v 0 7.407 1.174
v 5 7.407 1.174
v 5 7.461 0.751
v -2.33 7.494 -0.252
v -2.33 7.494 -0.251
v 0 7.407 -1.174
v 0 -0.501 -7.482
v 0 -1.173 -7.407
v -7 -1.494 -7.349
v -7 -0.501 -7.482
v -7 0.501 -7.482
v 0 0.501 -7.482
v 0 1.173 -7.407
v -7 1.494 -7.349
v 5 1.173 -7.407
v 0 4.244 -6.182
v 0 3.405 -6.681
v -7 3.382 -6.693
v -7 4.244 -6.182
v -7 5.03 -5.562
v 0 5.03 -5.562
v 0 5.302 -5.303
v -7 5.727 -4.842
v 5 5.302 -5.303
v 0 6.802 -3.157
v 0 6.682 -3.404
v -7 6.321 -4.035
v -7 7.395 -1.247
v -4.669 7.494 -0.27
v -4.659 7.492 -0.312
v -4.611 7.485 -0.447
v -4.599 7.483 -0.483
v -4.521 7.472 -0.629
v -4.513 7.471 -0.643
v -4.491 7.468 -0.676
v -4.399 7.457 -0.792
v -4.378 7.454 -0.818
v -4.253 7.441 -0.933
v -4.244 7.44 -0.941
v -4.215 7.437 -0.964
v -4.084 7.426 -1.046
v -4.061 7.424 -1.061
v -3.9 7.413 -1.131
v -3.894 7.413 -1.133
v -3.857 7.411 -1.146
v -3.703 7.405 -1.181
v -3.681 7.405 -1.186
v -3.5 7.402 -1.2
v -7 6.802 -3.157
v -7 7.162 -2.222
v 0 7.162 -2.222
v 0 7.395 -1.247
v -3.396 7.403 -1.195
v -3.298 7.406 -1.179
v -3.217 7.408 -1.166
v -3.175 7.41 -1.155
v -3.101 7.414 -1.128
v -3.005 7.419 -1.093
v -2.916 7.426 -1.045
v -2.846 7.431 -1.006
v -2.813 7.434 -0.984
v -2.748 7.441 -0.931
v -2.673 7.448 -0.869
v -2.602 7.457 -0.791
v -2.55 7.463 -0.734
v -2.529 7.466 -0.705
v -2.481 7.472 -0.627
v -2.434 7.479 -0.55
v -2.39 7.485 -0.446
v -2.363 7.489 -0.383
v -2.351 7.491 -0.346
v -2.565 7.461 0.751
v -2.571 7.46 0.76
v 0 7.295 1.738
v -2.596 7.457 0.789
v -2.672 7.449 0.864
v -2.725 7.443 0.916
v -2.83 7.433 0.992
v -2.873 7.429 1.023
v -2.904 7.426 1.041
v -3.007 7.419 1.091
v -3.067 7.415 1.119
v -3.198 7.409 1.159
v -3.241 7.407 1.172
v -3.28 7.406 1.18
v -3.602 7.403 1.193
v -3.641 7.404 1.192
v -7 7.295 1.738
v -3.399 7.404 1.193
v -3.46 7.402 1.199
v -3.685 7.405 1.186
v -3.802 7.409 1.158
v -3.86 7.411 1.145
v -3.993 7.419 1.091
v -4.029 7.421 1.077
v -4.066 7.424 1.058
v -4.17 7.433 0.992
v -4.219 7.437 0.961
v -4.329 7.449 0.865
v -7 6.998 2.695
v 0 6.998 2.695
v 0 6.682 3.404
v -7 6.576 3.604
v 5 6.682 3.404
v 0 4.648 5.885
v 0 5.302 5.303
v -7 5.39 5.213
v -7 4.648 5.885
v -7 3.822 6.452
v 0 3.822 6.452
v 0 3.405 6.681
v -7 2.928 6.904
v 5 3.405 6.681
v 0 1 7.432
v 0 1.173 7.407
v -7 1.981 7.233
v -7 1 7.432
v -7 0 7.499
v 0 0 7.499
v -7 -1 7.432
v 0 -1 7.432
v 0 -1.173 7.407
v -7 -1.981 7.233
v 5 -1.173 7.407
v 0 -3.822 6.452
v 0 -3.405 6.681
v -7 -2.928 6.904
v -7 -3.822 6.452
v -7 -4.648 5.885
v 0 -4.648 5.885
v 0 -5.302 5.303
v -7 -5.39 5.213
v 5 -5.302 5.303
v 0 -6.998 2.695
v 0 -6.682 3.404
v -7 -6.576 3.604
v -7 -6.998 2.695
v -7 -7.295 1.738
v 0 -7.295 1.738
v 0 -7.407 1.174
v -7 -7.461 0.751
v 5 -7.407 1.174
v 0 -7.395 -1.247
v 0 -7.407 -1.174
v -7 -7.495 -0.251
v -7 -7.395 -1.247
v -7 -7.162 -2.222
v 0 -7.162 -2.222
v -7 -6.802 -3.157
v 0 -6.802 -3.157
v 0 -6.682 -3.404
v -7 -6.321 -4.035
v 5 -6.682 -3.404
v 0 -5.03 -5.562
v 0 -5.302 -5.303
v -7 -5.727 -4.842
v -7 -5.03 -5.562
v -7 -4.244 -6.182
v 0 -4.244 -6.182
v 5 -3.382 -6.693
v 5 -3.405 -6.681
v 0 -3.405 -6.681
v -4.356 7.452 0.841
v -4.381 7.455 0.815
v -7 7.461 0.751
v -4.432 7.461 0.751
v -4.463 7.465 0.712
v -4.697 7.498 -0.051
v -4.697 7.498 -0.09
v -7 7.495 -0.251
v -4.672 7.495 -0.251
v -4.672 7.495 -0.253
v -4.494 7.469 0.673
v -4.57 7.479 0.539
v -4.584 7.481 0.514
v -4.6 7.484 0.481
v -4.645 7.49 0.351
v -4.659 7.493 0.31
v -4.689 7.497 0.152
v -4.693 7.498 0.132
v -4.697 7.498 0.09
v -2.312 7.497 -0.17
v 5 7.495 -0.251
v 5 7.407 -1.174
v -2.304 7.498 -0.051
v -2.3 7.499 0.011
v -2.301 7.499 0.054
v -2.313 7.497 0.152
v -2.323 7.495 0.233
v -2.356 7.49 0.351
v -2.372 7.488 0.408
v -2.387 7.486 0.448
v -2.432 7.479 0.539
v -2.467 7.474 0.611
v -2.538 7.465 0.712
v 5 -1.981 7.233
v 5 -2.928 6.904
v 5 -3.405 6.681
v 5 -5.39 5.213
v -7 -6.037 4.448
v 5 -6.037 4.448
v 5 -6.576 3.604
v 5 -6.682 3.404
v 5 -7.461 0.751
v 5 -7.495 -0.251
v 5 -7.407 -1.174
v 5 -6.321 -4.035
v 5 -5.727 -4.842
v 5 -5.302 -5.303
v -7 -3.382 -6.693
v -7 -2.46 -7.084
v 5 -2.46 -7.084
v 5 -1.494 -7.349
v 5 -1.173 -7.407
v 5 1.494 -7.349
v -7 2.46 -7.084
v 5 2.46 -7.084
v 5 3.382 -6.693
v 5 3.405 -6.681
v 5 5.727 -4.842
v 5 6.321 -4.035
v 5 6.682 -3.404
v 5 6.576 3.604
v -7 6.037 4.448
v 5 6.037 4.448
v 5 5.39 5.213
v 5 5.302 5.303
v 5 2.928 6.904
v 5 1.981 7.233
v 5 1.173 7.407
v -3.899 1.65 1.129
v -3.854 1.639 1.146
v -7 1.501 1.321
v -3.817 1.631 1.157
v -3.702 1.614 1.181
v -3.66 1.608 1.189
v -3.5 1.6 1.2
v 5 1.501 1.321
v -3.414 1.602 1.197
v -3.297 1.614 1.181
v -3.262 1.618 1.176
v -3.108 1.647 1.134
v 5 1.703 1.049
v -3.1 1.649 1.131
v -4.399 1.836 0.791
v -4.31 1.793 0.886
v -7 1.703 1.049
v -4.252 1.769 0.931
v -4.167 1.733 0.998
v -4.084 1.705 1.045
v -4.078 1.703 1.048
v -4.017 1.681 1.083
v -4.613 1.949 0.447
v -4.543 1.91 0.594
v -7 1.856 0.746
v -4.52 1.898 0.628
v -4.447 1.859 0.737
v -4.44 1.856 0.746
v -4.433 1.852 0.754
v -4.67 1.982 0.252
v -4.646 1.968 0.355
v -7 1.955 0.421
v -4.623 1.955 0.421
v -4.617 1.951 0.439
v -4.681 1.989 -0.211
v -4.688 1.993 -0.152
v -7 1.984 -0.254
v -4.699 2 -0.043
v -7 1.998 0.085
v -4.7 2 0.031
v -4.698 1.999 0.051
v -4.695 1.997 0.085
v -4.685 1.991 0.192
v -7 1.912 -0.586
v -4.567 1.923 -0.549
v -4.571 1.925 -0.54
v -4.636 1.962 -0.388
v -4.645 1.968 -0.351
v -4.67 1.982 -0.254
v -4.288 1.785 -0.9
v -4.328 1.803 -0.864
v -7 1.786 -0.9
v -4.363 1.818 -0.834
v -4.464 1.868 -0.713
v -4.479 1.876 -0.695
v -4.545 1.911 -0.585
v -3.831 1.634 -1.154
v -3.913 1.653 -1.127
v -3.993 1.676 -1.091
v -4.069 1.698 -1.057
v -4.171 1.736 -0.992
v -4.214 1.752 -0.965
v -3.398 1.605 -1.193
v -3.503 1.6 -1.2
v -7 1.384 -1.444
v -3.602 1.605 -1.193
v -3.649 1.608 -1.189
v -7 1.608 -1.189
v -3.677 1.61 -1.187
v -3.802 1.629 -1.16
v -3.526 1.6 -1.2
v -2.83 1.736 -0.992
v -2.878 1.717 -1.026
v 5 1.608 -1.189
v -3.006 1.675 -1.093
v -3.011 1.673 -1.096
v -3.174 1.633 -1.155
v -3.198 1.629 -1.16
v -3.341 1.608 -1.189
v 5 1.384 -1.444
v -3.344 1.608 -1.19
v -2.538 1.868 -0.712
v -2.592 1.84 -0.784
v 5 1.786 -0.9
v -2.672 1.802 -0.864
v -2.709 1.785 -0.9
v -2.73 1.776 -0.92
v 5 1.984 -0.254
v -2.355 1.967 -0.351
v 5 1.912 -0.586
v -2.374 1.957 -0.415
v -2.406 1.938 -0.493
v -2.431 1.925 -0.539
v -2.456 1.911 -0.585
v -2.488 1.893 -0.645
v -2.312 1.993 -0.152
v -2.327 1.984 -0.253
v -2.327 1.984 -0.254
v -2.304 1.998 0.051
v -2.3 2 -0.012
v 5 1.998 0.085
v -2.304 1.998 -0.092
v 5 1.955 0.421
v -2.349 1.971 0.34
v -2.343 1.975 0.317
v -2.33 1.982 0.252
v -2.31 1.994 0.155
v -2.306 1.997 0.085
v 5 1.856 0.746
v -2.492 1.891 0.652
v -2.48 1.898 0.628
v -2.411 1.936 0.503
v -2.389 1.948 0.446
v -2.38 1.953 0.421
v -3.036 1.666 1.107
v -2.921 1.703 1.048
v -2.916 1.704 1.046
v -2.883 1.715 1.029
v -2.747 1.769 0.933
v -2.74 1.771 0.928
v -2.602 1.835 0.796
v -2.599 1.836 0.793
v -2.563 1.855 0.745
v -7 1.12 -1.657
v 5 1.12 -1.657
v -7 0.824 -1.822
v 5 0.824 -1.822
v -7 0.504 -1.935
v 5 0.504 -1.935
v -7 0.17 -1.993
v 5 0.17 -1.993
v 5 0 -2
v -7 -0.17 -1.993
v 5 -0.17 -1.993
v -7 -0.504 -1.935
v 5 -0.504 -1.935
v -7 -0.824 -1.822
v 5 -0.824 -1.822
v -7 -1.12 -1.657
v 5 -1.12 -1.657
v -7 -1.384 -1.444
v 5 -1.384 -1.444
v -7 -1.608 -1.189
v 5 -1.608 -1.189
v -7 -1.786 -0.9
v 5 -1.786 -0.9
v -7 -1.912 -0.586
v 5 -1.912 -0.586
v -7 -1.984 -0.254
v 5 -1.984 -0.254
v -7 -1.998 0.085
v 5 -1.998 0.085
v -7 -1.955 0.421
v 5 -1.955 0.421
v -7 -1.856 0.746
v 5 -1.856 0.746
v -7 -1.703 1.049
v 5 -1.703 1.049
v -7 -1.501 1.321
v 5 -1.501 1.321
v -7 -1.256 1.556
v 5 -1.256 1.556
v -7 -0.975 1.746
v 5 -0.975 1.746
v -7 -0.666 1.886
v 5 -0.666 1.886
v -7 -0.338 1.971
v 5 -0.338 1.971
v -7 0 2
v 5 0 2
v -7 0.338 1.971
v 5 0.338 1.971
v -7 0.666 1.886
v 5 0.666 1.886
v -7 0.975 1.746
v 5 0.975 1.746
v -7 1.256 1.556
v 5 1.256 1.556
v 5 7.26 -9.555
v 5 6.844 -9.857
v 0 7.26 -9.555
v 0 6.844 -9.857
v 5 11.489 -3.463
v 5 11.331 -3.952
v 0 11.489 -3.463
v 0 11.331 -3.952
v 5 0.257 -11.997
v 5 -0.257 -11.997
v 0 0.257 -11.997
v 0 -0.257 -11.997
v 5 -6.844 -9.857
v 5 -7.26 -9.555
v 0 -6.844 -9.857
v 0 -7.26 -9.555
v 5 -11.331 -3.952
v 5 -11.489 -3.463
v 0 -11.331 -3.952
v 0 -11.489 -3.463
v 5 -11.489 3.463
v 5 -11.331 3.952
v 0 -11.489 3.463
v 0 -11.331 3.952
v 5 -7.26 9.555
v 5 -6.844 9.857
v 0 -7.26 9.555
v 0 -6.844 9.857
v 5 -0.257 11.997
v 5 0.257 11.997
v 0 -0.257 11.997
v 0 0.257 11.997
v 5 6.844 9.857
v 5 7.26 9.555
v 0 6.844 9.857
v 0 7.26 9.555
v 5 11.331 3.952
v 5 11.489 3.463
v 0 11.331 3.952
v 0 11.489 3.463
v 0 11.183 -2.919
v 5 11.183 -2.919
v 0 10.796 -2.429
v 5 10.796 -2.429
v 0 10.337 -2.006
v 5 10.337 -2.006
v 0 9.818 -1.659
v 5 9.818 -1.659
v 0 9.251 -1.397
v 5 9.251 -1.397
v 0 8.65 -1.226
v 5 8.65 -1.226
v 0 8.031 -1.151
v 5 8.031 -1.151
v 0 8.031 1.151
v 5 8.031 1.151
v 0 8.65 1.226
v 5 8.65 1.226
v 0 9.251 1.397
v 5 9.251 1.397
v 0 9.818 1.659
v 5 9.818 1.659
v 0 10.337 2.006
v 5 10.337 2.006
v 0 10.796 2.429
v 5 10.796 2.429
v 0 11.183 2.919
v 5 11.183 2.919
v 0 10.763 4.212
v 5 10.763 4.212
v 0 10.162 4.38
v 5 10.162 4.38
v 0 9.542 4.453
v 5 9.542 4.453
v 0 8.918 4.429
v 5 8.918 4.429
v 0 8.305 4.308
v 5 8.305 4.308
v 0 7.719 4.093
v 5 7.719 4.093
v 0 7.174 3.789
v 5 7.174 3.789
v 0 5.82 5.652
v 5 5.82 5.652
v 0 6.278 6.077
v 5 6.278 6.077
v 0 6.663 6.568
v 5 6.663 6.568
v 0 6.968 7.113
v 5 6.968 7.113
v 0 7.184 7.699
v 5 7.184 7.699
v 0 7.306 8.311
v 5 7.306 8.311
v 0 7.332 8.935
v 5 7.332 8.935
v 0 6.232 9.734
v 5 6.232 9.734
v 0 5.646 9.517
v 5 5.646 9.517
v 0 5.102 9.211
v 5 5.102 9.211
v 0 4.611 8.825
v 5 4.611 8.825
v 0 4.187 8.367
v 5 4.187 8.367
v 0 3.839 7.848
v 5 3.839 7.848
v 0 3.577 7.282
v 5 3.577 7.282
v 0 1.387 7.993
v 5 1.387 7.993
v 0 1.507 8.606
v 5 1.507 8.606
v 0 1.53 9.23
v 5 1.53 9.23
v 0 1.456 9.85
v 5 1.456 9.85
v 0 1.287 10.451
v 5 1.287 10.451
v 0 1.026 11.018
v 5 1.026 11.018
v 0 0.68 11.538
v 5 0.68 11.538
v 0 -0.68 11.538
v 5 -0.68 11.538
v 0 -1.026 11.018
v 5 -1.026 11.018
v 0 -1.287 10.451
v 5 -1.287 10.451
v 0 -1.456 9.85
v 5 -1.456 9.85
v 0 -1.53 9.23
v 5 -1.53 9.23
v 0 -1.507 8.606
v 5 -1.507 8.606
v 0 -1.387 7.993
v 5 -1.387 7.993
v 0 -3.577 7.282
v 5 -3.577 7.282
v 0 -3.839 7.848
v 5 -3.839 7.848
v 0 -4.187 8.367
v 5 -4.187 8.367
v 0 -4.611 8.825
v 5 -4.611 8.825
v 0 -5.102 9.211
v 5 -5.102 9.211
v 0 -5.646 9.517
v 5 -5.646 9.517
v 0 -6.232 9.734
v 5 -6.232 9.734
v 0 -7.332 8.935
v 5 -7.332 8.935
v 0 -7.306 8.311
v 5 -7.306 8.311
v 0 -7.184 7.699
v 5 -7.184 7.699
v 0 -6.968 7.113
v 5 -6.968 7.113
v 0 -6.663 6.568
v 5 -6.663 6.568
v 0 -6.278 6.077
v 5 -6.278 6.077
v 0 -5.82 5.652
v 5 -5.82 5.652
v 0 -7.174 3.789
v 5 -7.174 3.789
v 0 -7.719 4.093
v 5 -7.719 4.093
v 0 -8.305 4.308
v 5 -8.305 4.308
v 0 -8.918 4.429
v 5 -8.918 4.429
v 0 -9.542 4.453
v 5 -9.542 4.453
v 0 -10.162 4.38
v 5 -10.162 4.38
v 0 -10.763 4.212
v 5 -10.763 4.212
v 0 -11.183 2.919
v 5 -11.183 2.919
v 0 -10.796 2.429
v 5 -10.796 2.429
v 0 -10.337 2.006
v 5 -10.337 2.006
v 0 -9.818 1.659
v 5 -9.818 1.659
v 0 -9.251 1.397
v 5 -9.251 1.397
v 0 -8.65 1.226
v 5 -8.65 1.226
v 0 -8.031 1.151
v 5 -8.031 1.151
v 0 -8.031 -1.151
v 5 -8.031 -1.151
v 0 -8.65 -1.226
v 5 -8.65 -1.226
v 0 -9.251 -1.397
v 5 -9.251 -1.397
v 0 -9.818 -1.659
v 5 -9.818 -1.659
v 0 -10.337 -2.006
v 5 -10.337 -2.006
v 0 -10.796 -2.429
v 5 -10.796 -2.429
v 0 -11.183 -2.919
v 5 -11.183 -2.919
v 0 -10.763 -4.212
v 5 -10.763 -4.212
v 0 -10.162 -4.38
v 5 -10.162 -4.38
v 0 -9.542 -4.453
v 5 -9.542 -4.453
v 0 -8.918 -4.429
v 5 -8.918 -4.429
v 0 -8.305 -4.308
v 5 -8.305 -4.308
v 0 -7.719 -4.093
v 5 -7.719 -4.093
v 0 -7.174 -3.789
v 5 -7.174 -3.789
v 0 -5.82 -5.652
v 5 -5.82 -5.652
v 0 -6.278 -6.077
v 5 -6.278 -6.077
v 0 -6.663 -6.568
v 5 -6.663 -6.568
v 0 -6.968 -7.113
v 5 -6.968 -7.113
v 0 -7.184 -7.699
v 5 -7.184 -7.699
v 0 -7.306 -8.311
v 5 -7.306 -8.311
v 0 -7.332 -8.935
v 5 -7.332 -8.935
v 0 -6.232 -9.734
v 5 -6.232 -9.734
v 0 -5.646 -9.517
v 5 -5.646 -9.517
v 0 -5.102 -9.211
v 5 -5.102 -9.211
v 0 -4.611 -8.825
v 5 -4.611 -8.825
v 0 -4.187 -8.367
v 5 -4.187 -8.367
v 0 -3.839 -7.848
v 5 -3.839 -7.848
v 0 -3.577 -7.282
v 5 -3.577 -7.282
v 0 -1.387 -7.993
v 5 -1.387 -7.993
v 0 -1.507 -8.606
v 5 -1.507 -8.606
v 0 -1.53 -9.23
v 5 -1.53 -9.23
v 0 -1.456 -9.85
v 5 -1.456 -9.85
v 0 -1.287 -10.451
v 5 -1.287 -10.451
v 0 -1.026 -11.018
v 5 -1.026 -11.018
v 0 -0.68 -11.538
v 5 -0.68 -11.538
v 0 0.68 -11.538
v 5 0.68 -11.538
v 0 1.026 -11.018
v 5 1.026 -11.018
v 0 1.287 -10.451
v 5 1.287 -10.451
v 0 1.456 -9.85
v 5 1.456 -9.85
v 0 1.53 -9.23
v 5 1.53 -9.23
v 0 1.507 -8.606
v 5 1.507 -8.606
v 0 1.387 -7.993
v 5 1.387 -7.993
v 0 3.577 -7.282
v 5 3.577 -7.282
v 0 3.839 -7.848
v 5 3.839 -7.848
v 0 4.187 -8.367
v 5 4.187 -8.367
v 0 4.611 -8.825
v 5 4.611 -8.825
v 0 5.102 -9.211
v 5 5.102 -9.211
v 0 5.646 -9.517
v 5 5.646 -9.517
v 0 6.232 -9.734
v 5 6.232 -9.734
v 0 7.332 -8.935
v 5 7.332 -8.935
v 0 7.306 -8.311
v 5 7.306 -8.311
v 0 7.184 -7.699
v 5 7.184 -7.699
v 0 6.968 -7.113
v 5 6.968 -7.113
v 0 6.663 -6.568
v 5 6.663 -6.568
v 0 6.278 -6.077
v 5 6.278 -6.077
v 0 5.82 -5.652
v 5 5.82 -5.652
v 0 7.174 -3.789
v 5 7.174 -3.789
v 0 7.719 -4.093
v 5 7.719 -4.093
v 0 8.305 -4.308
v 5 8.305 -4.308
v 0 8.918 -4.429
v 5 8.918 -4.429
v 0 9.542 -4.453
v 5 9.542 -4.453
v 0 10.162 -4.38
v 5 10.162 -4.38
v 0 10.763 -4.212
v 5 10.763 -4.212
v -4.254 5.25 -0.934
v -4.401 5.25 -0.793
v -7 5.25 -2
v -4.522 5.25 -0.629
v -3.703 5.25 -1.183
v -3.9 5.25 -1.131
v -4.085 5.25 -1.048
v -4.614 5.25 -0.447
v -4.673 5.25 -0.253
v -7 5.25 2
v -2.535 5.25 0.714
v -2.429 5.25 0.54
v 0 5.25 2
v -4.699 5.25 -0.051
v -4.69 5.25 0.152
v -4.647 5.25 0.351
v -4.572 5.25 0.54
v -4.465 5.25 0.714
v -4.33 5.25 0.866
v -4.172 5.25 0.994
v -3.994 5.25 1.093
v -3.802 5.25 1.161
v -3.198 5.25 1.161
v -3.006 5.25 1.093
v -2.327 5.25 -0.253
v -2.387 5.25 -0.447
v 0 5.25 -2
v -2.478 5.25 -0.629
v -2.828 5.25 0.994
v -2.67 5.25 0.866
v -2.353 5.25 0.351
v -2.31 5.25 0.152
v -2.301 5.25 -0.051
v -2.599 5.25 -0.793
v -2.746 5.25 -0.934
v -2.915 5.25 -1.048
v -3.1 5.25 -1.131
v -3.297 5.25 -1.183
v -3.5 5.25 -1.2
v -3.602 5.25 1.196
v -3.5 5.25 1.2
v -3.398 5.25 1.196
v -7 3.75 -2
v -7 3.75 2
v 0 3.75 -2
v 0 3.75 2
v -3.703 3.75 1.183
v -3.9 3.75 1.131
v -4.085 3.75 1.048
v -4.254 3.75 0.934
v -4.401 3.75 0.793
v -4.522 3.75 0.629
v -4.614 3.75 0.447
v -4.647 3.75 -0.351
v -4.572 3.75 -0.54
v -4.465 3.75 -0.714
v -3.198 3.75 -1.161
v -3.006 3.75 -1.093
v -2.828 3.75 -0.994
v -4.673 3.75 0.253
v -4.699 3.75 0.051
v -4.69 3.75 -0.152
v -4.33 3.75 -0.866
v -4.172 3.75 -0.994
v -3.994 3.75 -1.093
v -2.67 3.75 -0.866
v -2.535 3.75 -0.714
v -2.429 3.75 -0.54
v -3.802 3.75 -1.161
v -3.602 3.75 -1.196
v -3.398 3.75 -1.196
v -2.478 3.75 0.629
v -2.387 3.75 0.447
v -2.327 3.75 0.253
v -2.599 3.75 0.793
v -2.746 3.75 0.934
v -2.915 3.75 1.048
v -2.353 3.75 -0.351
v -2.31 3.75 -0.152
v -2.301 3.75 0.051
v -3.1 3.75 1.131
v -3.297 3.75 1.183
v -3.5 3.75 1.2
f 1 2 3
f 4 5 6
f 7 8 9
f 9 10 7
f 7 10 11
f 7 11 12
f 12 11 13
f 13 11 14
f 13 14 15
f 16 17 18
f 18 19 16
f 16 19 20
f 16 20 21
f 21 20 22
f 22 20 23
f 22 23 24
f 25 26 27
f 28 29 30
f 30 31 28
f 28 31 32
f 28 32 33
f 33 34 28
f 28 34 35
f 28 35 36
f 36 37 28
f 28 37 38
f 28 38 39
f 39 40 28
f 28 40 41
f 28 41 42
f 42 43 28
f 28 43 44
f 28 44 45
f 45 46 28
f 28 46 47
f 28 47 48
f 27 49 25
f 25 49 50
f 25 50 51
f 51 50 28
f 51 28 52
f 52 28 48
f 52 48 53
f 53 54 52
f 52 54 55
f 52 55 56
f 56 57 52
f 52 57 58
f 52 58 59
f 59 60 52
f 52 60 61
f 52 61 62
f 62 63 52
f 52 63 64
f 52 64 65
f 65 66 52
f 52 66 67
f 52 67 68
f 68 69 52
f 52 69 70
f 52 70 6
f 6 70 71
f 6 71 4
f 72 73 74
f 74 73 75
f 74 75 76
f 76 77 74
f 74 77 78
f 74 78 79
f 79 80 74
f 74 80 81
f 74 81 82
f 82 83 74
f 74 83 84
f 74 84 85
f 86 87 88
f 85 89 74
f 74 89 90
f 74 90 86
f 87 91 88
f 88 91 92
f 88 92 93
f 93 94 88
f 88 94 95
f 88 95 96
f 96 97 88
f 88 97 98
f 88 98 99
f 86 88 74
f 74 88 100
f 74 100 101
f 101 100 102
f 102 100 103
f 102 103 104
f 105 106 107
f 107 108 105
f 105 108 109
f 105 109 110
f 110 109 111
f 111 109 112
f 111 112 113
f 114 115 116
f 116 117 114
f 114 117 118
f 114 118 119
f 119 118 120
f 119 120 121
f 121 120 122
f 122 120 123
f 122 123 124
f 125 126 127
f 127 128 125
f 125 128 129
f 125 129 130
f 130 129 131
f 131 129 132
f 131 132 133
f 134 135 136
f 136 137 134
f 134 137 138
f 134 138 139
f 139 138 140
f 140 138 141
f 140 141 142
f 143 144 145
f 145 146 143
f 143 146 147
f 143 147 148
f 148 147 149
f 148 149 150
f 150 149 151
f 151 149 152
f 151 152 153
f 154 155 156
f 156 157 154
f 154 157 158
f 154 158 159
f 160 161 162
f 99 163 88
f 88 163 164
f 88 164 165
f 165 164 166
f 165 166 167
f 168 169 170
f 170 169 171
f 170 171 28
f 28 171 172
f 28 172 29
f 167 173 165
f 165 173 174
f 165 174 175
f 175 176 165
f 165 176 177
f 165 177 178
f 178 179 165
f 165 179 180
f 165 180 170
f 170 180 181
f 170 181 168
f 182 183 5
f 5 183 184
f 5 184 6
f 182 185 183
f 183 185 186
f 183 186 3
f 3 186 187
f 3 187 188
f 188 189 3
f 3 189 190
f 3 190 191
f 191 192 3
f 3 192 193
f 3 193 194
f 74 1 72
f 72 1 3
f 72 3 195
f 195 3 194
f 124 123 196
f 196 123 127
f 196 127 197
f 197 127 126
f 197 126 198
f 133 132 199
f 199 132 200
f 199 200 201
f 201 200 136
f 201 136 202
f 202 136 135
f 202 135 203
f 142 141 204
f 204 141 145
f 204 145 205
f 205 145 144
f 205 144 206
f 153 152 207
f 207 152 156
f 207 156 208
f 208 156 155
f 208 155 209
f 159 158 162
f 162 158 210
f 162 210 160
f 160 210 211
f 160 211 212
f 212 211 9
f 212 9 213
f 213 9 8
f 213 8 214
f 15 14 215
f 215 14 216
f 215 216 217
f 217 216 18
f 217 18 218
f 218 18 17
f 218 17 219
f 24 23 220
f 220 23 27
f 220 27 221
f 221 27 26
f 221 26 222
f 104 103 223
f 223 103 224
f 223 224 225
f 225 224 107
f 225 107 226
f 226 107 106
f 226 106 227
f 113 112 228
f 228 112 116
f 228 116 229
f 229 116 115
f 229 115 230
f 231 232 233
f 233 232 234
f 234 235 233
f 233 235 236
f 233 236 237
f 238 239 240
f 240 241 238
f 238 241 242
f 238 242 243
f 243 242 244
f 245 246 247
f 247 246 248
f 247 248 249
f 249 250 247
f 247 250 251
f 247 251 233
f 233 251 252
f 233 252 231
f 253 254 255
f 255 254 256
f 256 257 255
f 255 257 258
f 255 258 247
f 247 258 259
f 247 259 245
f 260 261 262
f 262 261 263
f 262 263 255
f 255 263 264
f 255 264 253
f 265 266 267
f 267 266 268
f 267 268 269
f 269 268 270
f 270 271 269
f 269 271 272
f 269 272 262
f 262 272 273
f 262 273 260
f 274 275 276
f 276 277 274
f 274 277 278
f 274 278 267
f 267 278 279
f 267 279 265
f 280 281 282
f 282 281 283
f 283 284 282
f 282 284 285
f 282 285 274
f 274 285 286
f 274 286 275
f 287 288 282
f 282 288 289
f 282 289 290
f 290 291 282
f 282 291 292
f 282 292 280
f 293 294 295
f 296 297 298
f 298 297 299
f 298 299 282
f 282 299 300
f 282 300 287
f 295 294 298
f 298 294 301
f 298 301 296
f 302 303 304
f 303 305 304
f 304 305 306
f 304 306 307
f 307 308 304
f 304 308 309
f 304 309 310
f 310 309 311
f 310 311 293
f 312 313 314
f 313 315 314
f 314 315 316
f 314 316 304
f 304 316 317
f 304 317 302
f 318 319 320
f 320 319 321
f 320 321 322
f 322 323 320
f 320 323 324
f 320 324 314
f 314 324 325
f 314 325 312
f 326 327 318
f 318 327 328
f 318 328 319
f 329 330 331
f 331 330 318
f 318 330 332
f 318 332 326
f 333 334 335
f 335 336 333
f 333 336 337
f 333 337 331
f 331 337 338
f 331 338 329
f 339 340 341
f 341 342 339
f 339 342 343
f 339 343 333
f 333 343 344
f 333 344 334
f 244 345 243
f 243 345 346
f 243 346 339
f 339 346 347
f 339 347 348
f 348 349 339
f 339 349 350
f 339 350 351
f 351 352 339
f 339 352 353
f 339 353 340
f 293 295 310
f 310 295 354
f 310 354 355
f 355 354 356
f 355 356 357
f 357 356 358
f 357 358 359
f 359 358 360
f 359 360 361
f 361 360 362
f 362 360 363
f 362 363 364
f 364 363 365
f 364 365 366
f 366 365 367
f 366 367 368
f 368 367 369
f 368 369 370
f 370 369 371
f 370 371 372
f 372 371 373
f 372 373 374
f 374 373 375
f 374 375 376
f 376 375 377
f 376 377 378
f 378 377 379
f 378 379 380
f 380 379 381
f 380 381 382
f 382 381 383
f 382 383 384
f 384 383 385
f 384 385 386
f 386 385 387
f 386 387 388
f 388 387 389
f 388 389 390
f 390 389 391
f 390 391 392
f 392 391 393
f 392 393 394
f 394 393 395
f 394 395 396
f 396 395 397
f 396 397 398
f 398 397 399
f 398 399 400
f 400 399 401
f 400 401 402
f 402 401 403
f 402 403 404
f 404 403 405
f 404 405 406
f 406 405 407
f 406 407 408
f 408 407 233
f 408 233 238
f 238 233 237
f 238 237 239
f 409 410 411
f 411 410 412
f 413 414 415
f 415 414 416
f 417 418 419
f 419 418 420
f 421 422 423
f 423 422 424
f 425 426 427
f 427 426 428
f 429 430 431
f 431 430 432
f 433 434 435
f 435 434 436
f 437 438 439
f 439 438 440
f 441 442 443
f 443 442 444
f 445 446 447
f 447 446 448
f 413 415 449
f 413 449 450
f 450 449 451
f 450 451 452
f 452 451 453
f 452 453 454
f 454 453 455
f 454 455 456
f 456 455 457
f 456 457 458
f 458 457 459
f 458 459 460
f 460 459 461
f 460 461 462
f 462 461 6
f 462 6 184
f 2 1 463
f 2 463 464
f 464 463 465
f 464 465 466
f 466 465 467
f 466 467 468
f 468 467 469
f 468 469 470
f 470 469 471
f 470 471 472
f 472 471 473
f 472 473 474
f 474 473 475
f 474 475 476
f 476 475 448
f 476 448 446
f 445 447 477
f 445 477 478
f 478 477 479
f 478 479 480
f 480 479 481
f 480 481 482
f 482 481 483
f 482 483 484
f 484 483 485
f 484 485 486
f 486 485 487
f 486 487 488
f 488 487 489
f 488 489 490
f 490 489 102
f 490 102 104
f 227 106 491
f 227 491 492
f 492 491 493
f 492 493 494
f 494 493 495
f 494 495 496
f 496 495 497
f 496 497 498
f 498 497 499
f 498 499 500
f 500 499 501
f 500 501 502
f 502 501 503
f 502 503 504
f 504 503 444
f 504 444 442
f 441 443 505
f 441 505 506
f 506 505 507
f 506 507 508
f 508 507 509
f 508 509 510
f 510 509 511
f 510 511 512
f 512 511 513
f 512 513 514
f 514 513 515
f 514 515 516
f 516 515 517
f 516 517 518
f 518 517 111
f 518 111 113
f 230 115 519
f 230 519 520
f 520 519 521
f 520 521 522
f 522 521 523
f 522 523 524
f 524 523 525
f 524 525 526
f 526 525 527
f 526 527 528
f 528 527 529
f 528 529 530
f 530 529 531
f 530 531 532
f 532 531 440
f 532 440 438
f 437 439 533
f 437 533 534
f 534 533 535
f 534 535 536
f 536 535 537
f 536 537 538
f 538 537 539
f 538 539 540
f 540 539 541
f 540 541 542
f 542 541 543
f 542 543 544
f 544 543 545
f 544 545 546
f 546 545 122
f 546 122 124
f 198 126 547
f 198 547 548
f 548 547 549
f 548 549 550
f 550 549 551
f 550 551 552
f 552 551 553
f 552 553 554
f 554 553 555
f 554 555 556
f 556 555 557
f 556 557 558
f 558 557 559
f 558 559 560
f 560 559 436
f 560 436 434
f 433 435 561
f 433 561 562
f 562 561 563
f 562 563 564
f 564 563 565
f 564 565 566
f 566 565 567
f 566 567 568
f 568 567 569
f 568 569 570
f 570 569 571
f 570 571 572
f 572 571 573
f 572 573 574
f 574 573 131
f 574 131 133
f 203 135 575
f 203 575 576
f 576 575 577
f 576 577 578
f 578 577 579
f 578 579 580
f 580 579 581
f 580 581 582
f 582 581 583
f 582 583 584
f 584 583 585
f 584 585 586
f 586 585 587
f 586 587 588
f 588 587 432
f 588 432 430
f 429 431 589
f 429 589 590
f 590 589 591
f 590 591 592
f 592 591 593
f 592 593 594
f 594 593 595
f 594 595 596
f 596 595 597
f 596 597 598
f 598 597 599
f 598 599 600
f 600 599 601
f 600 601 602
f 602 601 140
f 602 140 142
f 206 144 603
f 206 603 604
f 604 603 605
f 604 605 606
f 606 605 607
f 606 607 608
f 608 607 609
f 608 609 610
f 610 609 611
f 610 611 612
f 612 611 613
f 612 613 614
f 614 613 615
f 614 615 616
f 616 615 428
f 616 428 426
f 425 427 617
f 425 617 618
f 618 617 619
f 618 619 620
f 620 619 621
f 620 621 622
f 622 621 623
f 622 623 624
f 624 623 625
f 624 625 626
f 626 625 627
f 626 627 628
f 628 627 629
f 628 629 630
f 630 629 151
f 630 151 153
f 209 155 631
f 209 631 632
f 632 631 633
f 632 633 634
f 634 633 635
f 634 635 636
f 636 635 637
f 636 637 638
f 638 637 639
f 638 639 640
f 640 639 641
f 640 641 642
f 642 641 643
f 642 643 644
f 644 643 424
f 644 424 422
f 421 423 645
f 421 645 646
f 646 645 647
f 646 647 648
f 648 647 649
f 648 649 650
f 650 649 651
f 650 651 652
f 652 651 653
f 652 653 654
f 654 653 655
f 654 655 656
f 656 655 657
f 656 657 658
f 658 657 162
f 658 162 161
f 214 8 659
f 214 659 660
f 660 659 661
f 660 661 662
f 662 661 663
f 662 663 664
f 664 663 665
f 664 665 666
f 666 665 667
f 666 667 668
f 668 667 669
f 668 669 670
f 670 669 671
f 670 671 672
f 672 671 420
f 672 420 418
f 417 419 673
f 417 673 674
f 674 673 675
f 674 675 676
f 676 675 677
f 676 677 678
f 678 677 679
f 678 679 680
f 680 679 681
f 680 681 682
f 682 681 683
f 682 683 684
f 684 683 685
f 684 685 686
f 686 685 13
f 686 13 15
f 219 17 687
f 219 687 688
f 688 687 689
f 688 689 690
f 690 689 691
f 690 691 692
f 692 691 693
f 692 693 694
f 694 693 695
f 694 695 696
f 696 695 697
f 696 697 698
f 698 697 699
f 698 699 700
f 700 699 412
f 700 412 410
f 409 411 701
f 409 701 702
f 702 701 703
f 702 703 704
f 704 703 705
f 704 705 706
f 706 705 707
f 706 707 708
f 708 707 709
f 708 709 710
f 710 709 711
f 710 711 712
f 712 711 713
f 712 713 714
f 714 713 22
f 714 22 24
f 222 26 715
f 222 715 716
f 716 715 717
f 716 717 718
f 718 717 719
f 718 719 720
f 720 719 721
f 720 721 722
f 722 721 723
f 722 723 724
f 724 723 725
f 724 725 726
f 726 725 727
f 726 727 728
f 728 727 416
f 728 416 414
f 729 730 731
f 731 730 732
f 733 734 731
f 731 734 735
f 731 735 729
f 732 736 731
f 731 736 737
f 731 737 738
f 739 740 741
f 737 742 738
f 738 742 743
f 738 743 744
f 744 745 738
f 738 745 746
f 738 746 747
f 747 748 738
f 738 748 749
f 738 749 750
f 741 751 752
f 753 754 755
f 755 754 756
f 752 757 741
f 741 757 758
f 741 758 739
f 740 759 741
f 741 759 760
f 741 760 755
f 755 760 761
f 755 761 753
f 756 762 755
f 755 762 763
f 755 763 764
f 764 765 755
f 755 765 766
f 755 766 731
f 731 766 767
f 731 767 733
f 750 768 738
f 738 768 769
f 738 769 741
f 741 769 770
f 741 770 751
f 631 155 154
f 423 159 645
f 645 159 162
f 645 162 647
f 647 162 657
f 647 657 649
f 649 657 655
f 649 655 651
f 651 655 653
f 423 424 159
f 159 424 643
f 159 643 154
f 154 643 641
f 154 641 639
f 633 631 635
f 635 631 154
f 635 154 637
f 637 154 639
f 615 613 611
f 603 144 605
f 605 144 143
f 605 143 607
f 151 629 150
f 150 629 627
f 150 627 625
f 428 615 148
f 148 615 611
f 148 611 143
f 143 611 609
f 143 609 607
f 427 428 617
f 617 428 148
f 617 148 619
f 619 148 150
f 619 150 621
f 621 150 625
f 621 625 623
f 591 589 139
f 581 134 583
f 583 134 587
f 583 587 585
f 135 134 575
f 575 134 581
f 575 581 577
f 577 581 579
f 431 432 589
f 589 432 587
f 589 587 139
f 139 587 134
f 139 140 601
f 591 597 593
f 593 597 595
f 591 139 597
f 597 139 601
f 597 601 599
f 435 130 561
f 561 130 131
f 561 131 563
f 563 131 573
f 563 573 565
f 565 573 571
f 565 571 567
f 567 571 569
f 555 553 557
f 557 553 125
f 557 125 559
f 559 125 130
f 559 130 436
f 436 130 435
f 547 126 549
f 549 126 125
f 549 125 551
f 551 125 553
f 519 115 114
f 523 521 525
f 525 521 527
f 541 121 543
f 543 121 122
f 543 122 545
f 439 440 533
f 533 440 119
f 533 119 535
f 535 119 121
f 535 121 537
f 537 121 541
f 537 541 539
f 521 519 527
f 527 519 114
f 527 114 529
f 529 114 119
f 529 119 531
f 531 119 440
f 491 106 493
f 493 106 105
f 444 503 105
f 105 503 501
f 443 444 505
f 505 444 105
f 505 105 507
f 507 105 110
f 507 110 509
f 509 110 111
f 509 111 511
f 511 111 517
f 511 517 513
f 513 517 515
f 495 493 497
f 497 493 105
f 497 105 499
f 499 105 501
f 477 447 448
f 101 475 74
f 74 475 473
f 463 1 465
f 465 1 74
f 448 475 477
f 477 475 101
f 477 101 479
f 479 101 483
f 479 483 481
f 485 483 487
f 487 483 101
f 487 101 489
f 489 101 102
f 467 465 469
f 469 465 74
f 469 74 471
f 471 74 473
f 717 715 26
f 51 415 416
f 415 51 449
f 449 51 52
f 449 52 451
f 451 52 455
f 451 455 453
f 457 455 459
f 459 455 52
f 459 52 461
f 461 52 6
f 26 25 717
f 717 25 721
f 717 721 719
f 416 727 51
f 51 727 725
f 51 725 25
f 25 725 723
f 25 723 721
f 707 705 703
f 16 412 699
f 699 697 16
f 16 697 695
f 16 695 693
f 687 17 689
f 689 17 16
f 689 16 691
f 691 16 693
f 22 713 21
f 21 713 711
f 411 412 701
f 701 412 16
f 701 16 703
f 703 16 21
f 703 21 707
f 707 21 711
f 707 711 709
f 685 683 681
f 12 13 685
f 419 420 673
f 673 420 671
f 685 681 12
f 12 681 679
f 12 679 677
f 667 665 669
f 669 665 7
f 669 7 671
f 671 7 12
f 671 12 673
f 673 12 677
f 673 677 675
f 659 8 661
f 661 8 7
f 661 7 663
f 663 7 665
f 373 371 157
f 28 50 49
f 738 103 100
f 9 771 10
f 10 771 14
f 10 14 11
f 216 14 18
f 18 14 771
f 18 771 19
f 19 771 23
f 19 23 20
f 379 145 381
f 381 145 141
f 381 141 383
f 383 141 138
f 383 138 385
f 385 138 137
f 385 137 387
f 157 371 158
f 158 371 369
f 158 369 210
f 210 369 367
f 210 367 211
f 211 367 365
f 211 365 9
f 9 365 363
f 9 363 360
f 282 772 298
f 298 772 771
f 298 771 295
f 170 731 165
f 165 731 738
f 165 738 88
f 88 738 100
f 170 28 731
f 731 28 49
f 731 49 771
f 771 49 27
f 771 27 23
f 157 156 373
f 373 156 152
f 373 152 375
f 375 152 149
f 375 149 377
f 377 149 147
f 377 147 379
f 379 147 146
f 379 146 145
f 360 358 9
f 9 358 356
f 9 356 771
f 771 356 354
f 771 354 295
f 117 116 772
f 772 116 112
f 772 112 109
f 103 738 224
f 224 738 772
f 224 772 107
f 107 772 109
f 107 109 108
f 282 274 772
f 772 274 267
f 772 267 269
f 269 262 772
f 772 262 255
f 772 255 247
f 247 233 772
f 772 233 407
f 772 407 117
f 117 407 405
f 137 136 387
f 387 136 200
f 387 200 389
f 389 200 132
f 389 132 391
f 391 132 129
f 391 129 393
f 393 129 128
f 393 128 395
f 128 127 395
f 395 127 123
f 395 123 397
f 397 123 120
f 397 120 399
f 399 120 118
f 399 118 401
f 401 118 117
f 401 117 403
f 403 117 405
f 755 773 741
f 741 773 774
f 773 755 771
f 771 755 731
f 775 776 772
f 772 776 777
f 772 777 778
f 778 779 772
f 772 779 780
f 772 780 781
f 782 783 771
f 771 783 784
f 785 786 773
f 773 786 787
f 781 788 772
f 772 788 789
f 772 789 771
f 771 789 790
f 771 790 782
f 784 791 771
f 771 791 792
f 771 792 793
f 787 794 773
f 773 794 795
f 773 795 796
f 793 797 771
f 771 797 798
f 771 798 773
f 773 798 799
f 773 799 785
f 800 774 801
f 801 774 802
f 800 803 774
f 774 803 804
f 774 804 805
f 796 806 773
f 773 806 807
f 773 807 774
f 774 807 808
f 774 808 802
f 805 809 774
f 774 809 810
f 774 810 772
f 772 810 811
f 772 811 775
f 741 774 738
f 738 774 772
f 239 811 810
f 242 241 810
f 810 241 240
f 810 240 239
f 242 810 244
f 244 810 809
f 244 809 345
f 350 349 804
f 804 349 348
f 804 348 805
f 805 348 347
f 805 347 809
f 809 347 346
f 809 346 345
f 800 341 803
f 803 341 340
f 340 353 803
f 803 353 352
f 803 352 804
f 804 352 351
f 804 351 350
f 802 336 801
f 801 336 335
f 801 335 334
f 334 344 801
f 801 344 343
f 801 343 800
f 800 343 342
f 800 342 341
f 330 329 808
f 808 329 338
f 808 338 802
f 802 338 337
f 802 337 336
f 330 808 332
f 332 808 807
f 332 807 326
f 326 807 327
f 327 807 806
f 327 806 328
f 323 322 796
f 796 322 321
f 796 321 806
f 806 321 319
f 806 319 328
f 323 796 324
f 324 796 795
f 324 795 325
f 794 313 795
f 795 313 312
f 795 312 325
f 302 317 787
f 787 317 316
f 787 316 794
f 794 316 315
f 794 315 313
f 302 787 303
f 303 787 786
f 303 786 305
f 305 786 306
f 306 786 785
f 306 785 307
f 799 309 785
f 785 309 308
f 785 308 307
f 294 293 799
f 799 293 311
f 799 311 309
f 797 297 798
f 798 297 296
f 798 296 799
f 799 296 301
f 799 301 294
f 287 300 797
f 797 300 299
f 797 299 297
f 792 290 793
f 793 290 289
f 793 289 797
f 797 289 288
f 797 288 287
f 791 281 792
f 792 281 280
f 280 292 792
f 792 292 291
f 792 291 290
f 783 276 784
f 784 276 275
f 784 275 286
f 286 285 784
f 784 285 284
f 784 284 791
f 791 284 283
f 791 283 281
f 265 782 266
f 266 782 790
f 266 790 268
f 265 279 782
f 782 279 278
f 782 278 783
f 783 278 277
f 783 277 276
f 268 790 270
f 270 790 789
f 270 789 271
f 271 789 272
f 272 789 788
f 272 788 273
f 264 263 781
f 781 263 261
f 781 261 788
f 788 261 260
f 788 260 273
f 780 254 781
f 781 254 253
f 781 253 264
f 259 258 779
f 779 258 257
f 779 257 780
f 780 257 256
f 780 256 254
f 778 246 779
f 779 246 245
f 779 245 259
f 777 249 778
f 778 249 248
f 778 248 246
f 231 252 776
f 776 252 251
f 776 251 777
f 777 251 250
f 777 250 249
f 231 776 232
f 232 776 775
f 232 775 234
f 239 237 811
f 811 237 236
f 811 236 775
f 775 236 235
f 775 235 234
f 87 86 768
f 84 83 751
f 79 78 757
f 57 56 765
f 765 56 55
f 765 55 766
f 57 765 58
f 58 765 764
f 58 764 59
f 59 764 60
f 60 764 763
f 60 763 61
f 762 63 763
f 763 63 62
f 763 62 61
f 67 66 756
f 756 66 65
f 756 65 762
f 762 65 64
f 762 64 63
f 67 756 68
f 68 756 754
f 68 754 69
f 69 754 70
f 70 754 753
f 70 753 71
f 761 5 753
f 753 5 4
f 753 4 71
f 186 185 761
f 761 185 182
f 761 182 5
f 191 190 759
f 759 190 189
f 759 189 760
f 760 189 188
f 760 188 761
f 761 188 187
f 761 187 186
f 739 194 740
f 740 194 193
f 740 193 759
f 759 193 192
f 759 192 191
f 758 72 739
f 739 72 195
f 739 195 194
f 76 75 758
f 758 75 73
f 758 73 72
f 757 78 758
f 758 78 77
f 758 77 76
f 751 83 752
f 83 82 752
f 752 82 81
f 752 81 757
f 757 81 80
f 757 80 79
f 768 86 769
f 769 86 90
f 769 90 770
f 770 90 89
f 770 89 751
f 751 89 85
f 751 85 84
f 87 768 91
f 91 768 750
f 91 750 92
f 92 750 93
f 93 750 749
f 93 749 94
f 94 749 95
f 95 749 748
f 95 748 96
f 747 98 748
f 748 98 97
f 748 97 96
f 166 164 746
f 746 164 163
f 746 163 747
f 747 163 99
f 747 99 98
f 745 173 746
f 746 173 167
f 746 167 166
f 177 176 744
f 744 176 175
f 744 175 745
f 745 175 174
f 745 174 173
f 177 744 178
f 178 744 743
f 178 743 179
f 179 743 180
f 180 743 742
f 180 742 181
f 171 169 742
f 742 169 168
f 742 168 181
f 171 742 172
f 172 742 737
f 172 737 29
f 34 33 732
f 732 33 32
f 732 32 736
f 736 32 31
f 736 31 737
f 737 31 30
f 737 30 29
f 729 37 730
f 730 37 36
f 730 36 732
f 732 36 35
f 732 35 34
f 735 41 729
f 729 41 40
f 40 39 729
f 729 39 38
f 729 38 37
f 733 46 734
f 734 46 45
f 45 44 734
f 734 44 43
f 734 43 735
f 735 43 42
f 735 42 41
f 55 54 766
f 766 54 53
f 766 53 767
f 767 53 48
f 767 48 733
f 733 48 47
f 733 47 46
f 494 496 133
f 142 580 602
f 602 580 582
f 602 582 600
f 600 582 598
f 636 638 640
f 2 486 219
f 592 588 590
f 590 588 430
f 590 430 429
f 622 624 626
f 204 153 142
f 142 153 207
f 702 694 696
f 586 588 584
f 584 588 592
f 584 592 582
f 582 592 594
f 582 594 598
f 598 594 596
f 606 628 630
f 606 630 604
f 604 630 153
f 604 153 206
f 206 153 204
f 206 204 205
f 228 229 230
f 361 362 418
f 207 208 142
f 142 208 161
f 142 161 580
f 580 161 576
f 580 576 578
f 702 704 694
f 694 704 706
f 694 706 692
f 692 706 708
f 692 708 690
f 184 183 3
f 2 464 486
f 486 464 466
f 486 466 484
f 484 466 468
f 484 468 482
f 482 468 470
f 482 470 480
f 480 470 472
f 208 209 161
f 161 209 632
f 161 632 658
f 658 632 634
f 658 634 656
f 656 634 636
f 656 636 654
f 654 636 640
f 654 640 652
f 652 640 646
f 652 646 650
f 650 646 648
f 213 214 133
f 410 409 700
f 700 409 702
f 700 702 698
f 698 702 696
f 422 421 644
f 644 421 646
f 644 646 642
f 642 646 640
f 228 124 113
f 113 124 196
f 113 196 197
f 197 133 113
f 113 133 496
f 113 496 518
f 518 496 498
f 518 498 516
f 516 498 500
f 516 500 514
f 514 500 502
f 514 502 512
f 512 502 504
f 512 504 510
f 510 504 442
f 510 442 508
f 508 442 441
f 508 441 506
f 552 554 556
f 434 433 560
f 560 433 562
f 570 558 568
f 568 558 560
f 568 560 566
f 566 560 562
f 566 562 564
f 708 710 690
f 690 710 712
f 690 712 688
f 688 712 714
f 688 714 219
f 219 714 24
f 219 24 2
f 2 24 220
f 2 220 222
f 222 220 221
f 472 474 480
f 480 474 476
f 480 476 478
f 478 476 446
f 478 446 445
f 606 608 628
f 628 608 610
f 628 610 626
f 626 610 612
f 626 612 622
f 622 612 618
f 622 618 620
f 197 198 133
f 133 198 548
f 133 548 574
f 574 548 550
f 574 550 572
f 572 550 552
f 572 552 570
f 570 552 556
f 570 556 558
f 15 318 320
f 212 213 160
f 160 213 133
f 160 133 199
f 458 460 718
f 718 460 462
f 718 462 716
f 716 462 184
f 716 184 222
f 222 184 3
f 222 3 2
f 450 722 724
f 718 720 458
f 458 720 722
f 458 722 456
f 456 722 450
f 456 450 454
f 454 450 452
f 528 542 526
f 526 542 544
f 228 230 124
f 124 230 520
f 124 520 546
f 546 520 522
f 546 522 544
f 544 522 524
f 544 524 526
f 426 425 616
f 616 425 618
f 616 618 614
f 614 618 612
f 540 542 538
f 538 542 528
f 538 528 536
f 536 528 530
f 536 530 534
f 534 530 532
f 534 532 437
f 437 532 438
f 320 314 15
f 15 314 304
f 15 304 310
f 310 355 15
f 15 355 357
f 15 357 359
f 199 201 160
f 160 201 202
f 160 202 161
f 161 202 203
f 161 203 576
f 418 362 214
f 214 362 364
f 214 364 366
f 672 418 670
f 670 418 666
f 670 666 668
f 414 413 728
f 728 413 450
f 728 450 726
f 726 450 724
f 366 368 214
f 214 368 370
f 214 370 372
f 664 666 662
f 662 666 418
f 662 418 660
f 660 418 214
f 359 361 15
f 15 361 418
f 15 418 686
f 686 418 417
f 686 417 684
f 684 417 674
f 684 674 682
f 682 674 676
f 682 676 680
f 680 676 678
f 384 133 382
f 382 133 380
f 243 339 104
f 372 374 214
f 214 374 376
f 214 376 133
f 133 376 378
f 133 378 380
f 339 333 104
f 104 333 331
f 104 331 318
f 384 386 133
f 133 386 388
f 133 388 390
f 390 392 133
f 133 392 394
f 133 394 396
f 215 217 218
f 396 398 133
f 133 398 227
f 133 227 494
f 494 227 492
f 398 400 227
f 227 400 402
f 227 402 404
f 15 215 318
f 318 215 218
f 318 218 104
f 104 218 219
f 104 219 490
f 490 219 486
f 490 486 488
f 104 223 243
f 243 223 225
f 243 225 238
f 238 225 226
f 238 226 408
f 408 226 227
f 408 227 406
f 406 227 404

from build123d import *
from build123d.topology import SkipClean

# Parameters (mm, degrees)
BASPROSKE_W                  = 10
BASPROSKE_H                  = 12
TOOTHCUT_DEPTH               = 20.697715604
TEETHCUTS_COUNT              = 10
TEETHCUTS_ANGLE              = 324
HUBNEAONESKE_R               = 7.499
HUBNEARONE_DEPTH             = 10.0000508
BORSKE_R                     = 2
BORE_DEPTH                   = 20.0000508
ESQUISSE1_W                  = 4
ESQUISSE1_H                  = 1.5
ENL_V_MAT_EXTRU_1_DEPTH      = 10
ESQUISSE8_R                  = 7.499
ENL_V_MAT_EXTRU_4_DEPTH      = 3
ENL_V_MAT_EXTRU_2_REACH      = 23.823
ENL_V_MAT_EXTRU_2_END_RADIUS = 7.499
ESQUISSE6_R                  = 1.2
ESQUISSE7_R                  = 12
ENL_V_MAT_EXTRU_3_DEPTH      = 5


with BuildPart() as part:
    # BasProSke → Base-Revolve (revolve)
    with BuildSketch(Plane(origin=(0, 0, 0), x_dir=(1, 0, 0), z_dir=(0, 1, 0)), mode=Mode.PRIVATE) as base_revolve_sk:
        with Locations((5, 6)):
            Rectangle(BASPROSKE_W, BASPROSKE_H)
    revolve(base_revolve_sk.sketch.rotate(Axis((-10, 0, 0), (1, 0, 0)), 180), axis=Axis((-10, 0, 0), (1, 0, 0)))

    # TooCutSke → ToothCut (cut, through all)
    with BuildSketch(Plane(origin=(0, 0, 0), x_dir=(0, 0, -1), z_dir=(1, 0, 0))):
        with BuildLine():
            ThreePointArc((1.173662691, 7.406586048), (0, 7.499), (-1.173662691, 7.406586048))
            ThreePointArc((-1.173662691, 7.406586048), (-1.668191438, 9.834565786), (-3.497907776, 11.50542856))
            ThreePointArc((-3.497907776, 11.50542856), (0, 12.0254), (3.497907776, 11.50542856))
            ThreePointArc((3.497907776, 11.50542856), (1.668191438, 9.834565786), (1.173662691, 7.406586048))
        make_face()
    toothcut = extrude(amount=TOOTHCUT_DEPTH, mode=Mode.SUBTRACT)

    # TeethCuts: ToothCut ×10 about axis
    teethcuts_axis = Axis((-10, 0, 0), (1, 0, 0))
    for i in range(1, TEETHCUTS_COUNT):
        add(toothcut.rotate(teethcuts_axis, i * TEETHCUTS_ANGLE / (TEETHCUTS_COUNT - 1)), mode=Mode.SUBTRACT)

    # HubNeaOneSke → HubNearOne (add)
    with SkipClean():  # the faces are left unmerged after this step: merging them gives an invalid solid
        with BuildSketch(Plane.ZY):
            Circle(HUBNEAONESKE_R)
        extrude(amount=HUBNEARONE_DEPTH)

    # BorSke → Bore (cut, symmetric)
    with SkipClean():  # the faces are left unmerged after this step: merging them gives an invalid solid
        with BuildSketch(Plane(origin=(0, 0, 0), x_dir=(0, 0, -1), z_dir=(1, 0, 0))):
            with Locations(Location((0, 0, 0), (0, 0, 180))):
                Circle(BORSKE_R)
        extrude(amount=BORE_DEPTH, both=True, mode=Mode.SUBTRACT)

    # Esquisse1 → Enlèv. mat.-Extru.1 (cut)
    with SkipClean():  # the faces are left unmerged after this step: merging them gives an invalid solid
        with BuildSketch(Plane.ZY.offset(10.0000508)):
            with Locations((0, 4.5)):
                Rectangle(ESQUISSE1_W, ESQUISSE1_H)
        extrude(amount=-ENL_V_MAT_EXTRU_1_DEPTH, mode=Mode.SUBTRACT)

    # Esquisse8 → Enlèv. mat.-Extru.4 (cut)
    with SkipClean():  # the faces are left unmerged after this step: merging them gives an invalid solid
        with BuildSketch(Plane.ZY.offset(10.0000508)):
            Circle(ESQUISSE8_R)
        extrude(amount=-ENL_V_MAT_EXTRU_4_DEPTH, mode=Mode.SUBTRACT)

    # Esquisse4 → Dégagement M21 (revolve, cut)
    with SkipClean():  # the faces are left unmerged after this step: merging them gives an invalid solid
        with BuildSketch(Plane(origin=(-3.5000508, 3.75, 0), x_dir=(0, 0, 1), z_dir=(1, 0, 0))):
            Polygon((0, 0), (0, 3.721032743), (1.2, 3), (1.2, 0), align=None)
        revolve(axis=Axis((-3.5000508, 10.1, 0), (0, -1, 0)), mode=Mode.SUBTRACT)

    # Enlèv. mat.-Extru.2: up to this cylinder (the profile starts inside it)
    with SkipClean():  # the faces are left unmerged after this step: merging them gives an invalid solid
        enl_v_mat_extru_2_end = Plane(origin=(-3.500051, 0, 0), z_dir=(-1, 0, 0)) * Cylinder(ENL_V_MAT_EXTRU_2_END_RADIUS, 63.644, mode=Mode.PRIVATE)
        # Esquisse6 → Enlèv. mat.-Extru.2 (cut, up to the surface)
        with BuildSketch(Plane(origin=(0, 3.75, 0), x_dir=(-1, 0, 0), z_dir=(0, 1, 0)), mode=Mode.PRIVATE) as enl_v_mat_extru_2_sk1:
            with Locations(Location((3.5000508, 0, 0), (0, 0, 90))):
                Circle(ESQUISSE6_R)
        enl_v_mat_extru_2_tool1 = extrude(enl_v_mat_extru_2_sk1.sketch, amount=ENL_V_MAT_EXTRU_2_REACH, mode=Mode.PRIVATE) & enl_v_mat_extru_2_end
        add(enl_v_mat_extru_2_tool1.solids().sort_by_distance((-3.500051, 3.75, 0))[0], mode=Mode.SUBTRACT)

    # Esquisse7 → Enlèv. mat.-Extru.3 (cut)
    with SkipClean():  # the faces are left unmerged after this step: merging them gives an invalid solid
        with BuildSketch(Plane(origin=(10, 0, 0), x_dir=(0, 0, -1), z_dir=(1, 0, 0))):
            Circle(ESQUISSE7_R)
        extrude(amount=-ENL_V_MAT_EXTRU_3_DEPTH, mode=Mode.SUBTRACT)


solid = part.part
